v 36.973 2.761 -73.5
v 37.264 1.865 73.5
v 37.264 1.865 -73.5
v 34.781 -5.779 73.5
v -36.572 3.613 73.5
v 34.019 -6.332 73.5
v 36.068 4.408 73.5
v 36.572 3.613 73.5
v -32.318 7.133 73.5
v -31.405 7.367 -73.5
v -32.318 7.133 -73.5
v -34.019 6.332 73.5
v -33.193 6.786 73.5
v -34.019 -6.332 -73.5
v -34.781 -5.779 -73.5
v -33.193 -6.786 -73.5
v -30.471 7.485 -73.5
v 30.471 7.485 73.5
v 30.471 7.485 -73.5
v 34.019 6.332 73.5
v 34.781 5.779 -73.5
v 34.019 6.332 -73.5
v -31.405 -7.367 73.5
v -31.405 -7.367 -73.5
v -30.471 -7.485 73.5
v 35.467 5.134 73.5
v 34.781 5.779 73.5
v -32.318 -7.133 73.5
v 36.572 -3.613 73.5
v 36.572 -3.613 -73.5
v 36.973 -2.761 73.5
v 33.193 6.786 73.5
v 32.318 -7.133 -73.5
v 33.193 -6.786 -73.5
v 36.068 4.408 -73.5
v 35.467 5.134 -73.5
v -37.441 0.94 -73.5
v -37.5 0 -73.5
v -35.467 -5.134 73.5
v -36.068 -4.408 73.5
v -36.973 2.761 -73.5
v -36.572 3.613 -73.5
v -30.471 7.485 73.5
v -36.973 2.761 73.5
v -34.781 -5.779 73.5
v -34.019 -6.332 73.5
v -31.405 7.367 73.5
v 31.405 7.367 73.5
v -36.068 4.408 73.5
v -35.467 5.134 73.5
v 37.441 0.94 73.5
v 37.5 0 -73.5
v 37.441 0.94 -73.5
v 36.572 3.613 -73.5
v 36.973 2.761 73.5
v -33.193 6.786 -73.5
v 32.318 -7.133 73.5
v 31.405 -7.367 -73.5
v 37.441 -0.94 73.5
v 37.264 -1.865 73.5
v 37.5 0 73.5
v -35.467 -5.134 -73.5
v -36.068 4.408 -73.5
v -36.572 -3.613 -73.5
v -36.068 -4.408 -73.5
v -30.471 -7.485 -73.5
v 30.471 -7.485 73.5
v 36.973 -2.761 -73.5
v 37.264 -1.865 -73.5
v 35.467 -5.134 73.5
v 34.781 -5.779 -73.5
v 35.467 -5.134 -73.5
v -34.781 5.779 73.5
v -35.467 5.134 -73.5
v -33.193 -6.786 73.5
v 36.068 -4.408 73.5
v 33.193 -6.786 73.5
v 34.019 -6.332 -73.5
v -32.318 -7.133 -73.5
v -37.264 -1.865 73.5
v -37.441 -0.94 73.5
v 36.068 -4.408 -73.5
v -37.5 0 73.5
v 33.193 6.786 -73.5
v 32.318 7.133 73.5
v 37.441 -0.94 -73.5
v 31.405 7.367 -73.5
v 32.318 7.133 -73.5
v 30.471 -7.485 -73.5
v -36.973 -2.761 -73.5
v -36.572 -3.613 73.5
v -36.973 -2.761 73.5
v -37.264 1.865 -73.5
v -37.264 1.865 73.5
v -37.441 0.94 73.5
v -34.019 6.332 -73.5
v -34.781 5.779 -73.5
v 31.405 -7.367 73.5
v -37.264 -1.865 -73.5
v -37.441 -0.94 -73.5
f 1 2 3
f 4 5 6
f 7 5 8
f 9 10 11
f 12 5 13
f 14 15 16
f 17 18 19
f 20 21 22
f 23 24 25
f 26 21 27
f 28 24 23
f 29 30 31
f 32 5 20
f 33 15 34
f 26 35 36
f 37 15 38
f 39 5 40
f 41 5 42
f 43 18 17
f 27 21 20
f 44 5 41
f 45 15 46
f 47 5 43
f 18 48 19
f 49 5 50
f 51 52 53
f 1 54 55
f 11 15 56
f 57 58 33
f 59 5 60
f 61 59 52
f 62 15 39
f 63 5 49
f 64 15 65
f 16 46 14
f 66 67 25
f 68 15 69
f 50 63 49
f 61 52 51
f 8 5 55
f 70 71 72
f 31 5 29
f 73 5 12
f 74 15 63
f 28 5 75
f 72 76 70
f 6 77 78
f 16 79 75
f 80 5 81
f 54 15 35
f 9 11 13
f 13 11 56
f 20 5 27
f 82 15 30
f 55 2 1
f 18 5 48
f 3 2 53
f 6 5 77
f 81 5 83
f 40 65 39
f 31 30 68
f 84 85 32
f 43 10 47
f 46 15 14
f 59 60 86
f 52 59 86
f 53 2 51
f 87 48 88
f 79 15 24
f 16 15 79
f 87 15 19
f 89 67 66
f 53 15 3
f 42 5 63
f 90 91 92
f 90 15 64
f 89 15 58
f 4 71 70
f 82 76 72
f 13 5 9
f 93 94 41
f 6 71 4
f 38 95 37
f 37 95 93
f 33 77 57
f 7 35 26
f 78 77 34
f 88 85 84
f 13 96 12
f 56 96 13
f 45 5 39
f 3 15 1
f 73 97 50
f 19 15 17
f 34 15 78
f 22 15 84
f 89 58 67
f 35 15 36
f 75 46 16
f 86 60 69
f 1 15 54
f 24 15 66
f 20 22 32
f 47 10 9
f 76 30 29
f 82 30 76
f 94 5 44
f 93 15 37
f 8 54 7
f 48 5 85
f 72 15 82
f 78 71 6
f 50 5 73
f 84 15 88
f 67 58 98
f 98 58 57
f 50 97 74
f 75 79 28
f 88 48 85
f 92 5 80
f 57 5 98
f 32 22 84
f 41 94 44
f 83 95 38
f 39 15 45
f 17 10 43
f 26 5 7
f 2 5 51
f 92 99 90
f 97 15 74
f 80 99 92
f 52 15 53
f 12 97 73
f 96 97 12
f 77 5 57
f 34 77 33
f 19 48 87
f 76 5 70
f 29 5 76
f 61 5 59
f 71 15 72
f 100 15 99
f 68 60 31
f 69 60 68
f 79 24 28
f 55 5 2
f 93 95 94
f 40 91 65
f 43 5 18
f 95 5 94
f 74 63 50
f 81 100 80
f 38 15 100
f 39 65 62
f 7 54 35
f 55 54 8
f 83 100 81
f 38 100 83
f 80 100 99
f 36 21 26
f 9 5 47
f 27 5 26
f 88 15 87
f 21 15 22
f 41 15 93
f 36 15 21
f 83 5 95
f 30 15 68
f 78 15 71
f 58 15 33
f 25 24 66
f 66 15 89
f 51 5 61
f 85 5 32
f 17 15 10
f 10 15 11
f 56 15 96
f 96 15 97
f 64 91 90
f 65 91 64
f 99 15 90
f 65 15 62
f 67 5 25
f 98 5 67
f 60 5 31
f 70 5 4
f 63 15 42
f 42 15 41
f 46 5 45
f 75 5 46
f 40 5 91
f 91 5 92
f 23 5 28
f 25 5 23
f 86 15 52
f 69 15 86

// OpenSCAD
$fn=50;
RAD = 15/2;
MAIN_LEN = 147;
TOT_WIDTH = 75;

cyl_offset = (TOT_WIDTH - (2*RAD) )/2;


hull(){
    translate([cyl_offset,0,0]){
        cylinder(MAIN_LEN,RAD,RAD,center=true);
    }
    translate([-cyl_offset,0,0]){
        cylinder(MAIN_LEN,RAD,RAD,center=true);
    }

}
